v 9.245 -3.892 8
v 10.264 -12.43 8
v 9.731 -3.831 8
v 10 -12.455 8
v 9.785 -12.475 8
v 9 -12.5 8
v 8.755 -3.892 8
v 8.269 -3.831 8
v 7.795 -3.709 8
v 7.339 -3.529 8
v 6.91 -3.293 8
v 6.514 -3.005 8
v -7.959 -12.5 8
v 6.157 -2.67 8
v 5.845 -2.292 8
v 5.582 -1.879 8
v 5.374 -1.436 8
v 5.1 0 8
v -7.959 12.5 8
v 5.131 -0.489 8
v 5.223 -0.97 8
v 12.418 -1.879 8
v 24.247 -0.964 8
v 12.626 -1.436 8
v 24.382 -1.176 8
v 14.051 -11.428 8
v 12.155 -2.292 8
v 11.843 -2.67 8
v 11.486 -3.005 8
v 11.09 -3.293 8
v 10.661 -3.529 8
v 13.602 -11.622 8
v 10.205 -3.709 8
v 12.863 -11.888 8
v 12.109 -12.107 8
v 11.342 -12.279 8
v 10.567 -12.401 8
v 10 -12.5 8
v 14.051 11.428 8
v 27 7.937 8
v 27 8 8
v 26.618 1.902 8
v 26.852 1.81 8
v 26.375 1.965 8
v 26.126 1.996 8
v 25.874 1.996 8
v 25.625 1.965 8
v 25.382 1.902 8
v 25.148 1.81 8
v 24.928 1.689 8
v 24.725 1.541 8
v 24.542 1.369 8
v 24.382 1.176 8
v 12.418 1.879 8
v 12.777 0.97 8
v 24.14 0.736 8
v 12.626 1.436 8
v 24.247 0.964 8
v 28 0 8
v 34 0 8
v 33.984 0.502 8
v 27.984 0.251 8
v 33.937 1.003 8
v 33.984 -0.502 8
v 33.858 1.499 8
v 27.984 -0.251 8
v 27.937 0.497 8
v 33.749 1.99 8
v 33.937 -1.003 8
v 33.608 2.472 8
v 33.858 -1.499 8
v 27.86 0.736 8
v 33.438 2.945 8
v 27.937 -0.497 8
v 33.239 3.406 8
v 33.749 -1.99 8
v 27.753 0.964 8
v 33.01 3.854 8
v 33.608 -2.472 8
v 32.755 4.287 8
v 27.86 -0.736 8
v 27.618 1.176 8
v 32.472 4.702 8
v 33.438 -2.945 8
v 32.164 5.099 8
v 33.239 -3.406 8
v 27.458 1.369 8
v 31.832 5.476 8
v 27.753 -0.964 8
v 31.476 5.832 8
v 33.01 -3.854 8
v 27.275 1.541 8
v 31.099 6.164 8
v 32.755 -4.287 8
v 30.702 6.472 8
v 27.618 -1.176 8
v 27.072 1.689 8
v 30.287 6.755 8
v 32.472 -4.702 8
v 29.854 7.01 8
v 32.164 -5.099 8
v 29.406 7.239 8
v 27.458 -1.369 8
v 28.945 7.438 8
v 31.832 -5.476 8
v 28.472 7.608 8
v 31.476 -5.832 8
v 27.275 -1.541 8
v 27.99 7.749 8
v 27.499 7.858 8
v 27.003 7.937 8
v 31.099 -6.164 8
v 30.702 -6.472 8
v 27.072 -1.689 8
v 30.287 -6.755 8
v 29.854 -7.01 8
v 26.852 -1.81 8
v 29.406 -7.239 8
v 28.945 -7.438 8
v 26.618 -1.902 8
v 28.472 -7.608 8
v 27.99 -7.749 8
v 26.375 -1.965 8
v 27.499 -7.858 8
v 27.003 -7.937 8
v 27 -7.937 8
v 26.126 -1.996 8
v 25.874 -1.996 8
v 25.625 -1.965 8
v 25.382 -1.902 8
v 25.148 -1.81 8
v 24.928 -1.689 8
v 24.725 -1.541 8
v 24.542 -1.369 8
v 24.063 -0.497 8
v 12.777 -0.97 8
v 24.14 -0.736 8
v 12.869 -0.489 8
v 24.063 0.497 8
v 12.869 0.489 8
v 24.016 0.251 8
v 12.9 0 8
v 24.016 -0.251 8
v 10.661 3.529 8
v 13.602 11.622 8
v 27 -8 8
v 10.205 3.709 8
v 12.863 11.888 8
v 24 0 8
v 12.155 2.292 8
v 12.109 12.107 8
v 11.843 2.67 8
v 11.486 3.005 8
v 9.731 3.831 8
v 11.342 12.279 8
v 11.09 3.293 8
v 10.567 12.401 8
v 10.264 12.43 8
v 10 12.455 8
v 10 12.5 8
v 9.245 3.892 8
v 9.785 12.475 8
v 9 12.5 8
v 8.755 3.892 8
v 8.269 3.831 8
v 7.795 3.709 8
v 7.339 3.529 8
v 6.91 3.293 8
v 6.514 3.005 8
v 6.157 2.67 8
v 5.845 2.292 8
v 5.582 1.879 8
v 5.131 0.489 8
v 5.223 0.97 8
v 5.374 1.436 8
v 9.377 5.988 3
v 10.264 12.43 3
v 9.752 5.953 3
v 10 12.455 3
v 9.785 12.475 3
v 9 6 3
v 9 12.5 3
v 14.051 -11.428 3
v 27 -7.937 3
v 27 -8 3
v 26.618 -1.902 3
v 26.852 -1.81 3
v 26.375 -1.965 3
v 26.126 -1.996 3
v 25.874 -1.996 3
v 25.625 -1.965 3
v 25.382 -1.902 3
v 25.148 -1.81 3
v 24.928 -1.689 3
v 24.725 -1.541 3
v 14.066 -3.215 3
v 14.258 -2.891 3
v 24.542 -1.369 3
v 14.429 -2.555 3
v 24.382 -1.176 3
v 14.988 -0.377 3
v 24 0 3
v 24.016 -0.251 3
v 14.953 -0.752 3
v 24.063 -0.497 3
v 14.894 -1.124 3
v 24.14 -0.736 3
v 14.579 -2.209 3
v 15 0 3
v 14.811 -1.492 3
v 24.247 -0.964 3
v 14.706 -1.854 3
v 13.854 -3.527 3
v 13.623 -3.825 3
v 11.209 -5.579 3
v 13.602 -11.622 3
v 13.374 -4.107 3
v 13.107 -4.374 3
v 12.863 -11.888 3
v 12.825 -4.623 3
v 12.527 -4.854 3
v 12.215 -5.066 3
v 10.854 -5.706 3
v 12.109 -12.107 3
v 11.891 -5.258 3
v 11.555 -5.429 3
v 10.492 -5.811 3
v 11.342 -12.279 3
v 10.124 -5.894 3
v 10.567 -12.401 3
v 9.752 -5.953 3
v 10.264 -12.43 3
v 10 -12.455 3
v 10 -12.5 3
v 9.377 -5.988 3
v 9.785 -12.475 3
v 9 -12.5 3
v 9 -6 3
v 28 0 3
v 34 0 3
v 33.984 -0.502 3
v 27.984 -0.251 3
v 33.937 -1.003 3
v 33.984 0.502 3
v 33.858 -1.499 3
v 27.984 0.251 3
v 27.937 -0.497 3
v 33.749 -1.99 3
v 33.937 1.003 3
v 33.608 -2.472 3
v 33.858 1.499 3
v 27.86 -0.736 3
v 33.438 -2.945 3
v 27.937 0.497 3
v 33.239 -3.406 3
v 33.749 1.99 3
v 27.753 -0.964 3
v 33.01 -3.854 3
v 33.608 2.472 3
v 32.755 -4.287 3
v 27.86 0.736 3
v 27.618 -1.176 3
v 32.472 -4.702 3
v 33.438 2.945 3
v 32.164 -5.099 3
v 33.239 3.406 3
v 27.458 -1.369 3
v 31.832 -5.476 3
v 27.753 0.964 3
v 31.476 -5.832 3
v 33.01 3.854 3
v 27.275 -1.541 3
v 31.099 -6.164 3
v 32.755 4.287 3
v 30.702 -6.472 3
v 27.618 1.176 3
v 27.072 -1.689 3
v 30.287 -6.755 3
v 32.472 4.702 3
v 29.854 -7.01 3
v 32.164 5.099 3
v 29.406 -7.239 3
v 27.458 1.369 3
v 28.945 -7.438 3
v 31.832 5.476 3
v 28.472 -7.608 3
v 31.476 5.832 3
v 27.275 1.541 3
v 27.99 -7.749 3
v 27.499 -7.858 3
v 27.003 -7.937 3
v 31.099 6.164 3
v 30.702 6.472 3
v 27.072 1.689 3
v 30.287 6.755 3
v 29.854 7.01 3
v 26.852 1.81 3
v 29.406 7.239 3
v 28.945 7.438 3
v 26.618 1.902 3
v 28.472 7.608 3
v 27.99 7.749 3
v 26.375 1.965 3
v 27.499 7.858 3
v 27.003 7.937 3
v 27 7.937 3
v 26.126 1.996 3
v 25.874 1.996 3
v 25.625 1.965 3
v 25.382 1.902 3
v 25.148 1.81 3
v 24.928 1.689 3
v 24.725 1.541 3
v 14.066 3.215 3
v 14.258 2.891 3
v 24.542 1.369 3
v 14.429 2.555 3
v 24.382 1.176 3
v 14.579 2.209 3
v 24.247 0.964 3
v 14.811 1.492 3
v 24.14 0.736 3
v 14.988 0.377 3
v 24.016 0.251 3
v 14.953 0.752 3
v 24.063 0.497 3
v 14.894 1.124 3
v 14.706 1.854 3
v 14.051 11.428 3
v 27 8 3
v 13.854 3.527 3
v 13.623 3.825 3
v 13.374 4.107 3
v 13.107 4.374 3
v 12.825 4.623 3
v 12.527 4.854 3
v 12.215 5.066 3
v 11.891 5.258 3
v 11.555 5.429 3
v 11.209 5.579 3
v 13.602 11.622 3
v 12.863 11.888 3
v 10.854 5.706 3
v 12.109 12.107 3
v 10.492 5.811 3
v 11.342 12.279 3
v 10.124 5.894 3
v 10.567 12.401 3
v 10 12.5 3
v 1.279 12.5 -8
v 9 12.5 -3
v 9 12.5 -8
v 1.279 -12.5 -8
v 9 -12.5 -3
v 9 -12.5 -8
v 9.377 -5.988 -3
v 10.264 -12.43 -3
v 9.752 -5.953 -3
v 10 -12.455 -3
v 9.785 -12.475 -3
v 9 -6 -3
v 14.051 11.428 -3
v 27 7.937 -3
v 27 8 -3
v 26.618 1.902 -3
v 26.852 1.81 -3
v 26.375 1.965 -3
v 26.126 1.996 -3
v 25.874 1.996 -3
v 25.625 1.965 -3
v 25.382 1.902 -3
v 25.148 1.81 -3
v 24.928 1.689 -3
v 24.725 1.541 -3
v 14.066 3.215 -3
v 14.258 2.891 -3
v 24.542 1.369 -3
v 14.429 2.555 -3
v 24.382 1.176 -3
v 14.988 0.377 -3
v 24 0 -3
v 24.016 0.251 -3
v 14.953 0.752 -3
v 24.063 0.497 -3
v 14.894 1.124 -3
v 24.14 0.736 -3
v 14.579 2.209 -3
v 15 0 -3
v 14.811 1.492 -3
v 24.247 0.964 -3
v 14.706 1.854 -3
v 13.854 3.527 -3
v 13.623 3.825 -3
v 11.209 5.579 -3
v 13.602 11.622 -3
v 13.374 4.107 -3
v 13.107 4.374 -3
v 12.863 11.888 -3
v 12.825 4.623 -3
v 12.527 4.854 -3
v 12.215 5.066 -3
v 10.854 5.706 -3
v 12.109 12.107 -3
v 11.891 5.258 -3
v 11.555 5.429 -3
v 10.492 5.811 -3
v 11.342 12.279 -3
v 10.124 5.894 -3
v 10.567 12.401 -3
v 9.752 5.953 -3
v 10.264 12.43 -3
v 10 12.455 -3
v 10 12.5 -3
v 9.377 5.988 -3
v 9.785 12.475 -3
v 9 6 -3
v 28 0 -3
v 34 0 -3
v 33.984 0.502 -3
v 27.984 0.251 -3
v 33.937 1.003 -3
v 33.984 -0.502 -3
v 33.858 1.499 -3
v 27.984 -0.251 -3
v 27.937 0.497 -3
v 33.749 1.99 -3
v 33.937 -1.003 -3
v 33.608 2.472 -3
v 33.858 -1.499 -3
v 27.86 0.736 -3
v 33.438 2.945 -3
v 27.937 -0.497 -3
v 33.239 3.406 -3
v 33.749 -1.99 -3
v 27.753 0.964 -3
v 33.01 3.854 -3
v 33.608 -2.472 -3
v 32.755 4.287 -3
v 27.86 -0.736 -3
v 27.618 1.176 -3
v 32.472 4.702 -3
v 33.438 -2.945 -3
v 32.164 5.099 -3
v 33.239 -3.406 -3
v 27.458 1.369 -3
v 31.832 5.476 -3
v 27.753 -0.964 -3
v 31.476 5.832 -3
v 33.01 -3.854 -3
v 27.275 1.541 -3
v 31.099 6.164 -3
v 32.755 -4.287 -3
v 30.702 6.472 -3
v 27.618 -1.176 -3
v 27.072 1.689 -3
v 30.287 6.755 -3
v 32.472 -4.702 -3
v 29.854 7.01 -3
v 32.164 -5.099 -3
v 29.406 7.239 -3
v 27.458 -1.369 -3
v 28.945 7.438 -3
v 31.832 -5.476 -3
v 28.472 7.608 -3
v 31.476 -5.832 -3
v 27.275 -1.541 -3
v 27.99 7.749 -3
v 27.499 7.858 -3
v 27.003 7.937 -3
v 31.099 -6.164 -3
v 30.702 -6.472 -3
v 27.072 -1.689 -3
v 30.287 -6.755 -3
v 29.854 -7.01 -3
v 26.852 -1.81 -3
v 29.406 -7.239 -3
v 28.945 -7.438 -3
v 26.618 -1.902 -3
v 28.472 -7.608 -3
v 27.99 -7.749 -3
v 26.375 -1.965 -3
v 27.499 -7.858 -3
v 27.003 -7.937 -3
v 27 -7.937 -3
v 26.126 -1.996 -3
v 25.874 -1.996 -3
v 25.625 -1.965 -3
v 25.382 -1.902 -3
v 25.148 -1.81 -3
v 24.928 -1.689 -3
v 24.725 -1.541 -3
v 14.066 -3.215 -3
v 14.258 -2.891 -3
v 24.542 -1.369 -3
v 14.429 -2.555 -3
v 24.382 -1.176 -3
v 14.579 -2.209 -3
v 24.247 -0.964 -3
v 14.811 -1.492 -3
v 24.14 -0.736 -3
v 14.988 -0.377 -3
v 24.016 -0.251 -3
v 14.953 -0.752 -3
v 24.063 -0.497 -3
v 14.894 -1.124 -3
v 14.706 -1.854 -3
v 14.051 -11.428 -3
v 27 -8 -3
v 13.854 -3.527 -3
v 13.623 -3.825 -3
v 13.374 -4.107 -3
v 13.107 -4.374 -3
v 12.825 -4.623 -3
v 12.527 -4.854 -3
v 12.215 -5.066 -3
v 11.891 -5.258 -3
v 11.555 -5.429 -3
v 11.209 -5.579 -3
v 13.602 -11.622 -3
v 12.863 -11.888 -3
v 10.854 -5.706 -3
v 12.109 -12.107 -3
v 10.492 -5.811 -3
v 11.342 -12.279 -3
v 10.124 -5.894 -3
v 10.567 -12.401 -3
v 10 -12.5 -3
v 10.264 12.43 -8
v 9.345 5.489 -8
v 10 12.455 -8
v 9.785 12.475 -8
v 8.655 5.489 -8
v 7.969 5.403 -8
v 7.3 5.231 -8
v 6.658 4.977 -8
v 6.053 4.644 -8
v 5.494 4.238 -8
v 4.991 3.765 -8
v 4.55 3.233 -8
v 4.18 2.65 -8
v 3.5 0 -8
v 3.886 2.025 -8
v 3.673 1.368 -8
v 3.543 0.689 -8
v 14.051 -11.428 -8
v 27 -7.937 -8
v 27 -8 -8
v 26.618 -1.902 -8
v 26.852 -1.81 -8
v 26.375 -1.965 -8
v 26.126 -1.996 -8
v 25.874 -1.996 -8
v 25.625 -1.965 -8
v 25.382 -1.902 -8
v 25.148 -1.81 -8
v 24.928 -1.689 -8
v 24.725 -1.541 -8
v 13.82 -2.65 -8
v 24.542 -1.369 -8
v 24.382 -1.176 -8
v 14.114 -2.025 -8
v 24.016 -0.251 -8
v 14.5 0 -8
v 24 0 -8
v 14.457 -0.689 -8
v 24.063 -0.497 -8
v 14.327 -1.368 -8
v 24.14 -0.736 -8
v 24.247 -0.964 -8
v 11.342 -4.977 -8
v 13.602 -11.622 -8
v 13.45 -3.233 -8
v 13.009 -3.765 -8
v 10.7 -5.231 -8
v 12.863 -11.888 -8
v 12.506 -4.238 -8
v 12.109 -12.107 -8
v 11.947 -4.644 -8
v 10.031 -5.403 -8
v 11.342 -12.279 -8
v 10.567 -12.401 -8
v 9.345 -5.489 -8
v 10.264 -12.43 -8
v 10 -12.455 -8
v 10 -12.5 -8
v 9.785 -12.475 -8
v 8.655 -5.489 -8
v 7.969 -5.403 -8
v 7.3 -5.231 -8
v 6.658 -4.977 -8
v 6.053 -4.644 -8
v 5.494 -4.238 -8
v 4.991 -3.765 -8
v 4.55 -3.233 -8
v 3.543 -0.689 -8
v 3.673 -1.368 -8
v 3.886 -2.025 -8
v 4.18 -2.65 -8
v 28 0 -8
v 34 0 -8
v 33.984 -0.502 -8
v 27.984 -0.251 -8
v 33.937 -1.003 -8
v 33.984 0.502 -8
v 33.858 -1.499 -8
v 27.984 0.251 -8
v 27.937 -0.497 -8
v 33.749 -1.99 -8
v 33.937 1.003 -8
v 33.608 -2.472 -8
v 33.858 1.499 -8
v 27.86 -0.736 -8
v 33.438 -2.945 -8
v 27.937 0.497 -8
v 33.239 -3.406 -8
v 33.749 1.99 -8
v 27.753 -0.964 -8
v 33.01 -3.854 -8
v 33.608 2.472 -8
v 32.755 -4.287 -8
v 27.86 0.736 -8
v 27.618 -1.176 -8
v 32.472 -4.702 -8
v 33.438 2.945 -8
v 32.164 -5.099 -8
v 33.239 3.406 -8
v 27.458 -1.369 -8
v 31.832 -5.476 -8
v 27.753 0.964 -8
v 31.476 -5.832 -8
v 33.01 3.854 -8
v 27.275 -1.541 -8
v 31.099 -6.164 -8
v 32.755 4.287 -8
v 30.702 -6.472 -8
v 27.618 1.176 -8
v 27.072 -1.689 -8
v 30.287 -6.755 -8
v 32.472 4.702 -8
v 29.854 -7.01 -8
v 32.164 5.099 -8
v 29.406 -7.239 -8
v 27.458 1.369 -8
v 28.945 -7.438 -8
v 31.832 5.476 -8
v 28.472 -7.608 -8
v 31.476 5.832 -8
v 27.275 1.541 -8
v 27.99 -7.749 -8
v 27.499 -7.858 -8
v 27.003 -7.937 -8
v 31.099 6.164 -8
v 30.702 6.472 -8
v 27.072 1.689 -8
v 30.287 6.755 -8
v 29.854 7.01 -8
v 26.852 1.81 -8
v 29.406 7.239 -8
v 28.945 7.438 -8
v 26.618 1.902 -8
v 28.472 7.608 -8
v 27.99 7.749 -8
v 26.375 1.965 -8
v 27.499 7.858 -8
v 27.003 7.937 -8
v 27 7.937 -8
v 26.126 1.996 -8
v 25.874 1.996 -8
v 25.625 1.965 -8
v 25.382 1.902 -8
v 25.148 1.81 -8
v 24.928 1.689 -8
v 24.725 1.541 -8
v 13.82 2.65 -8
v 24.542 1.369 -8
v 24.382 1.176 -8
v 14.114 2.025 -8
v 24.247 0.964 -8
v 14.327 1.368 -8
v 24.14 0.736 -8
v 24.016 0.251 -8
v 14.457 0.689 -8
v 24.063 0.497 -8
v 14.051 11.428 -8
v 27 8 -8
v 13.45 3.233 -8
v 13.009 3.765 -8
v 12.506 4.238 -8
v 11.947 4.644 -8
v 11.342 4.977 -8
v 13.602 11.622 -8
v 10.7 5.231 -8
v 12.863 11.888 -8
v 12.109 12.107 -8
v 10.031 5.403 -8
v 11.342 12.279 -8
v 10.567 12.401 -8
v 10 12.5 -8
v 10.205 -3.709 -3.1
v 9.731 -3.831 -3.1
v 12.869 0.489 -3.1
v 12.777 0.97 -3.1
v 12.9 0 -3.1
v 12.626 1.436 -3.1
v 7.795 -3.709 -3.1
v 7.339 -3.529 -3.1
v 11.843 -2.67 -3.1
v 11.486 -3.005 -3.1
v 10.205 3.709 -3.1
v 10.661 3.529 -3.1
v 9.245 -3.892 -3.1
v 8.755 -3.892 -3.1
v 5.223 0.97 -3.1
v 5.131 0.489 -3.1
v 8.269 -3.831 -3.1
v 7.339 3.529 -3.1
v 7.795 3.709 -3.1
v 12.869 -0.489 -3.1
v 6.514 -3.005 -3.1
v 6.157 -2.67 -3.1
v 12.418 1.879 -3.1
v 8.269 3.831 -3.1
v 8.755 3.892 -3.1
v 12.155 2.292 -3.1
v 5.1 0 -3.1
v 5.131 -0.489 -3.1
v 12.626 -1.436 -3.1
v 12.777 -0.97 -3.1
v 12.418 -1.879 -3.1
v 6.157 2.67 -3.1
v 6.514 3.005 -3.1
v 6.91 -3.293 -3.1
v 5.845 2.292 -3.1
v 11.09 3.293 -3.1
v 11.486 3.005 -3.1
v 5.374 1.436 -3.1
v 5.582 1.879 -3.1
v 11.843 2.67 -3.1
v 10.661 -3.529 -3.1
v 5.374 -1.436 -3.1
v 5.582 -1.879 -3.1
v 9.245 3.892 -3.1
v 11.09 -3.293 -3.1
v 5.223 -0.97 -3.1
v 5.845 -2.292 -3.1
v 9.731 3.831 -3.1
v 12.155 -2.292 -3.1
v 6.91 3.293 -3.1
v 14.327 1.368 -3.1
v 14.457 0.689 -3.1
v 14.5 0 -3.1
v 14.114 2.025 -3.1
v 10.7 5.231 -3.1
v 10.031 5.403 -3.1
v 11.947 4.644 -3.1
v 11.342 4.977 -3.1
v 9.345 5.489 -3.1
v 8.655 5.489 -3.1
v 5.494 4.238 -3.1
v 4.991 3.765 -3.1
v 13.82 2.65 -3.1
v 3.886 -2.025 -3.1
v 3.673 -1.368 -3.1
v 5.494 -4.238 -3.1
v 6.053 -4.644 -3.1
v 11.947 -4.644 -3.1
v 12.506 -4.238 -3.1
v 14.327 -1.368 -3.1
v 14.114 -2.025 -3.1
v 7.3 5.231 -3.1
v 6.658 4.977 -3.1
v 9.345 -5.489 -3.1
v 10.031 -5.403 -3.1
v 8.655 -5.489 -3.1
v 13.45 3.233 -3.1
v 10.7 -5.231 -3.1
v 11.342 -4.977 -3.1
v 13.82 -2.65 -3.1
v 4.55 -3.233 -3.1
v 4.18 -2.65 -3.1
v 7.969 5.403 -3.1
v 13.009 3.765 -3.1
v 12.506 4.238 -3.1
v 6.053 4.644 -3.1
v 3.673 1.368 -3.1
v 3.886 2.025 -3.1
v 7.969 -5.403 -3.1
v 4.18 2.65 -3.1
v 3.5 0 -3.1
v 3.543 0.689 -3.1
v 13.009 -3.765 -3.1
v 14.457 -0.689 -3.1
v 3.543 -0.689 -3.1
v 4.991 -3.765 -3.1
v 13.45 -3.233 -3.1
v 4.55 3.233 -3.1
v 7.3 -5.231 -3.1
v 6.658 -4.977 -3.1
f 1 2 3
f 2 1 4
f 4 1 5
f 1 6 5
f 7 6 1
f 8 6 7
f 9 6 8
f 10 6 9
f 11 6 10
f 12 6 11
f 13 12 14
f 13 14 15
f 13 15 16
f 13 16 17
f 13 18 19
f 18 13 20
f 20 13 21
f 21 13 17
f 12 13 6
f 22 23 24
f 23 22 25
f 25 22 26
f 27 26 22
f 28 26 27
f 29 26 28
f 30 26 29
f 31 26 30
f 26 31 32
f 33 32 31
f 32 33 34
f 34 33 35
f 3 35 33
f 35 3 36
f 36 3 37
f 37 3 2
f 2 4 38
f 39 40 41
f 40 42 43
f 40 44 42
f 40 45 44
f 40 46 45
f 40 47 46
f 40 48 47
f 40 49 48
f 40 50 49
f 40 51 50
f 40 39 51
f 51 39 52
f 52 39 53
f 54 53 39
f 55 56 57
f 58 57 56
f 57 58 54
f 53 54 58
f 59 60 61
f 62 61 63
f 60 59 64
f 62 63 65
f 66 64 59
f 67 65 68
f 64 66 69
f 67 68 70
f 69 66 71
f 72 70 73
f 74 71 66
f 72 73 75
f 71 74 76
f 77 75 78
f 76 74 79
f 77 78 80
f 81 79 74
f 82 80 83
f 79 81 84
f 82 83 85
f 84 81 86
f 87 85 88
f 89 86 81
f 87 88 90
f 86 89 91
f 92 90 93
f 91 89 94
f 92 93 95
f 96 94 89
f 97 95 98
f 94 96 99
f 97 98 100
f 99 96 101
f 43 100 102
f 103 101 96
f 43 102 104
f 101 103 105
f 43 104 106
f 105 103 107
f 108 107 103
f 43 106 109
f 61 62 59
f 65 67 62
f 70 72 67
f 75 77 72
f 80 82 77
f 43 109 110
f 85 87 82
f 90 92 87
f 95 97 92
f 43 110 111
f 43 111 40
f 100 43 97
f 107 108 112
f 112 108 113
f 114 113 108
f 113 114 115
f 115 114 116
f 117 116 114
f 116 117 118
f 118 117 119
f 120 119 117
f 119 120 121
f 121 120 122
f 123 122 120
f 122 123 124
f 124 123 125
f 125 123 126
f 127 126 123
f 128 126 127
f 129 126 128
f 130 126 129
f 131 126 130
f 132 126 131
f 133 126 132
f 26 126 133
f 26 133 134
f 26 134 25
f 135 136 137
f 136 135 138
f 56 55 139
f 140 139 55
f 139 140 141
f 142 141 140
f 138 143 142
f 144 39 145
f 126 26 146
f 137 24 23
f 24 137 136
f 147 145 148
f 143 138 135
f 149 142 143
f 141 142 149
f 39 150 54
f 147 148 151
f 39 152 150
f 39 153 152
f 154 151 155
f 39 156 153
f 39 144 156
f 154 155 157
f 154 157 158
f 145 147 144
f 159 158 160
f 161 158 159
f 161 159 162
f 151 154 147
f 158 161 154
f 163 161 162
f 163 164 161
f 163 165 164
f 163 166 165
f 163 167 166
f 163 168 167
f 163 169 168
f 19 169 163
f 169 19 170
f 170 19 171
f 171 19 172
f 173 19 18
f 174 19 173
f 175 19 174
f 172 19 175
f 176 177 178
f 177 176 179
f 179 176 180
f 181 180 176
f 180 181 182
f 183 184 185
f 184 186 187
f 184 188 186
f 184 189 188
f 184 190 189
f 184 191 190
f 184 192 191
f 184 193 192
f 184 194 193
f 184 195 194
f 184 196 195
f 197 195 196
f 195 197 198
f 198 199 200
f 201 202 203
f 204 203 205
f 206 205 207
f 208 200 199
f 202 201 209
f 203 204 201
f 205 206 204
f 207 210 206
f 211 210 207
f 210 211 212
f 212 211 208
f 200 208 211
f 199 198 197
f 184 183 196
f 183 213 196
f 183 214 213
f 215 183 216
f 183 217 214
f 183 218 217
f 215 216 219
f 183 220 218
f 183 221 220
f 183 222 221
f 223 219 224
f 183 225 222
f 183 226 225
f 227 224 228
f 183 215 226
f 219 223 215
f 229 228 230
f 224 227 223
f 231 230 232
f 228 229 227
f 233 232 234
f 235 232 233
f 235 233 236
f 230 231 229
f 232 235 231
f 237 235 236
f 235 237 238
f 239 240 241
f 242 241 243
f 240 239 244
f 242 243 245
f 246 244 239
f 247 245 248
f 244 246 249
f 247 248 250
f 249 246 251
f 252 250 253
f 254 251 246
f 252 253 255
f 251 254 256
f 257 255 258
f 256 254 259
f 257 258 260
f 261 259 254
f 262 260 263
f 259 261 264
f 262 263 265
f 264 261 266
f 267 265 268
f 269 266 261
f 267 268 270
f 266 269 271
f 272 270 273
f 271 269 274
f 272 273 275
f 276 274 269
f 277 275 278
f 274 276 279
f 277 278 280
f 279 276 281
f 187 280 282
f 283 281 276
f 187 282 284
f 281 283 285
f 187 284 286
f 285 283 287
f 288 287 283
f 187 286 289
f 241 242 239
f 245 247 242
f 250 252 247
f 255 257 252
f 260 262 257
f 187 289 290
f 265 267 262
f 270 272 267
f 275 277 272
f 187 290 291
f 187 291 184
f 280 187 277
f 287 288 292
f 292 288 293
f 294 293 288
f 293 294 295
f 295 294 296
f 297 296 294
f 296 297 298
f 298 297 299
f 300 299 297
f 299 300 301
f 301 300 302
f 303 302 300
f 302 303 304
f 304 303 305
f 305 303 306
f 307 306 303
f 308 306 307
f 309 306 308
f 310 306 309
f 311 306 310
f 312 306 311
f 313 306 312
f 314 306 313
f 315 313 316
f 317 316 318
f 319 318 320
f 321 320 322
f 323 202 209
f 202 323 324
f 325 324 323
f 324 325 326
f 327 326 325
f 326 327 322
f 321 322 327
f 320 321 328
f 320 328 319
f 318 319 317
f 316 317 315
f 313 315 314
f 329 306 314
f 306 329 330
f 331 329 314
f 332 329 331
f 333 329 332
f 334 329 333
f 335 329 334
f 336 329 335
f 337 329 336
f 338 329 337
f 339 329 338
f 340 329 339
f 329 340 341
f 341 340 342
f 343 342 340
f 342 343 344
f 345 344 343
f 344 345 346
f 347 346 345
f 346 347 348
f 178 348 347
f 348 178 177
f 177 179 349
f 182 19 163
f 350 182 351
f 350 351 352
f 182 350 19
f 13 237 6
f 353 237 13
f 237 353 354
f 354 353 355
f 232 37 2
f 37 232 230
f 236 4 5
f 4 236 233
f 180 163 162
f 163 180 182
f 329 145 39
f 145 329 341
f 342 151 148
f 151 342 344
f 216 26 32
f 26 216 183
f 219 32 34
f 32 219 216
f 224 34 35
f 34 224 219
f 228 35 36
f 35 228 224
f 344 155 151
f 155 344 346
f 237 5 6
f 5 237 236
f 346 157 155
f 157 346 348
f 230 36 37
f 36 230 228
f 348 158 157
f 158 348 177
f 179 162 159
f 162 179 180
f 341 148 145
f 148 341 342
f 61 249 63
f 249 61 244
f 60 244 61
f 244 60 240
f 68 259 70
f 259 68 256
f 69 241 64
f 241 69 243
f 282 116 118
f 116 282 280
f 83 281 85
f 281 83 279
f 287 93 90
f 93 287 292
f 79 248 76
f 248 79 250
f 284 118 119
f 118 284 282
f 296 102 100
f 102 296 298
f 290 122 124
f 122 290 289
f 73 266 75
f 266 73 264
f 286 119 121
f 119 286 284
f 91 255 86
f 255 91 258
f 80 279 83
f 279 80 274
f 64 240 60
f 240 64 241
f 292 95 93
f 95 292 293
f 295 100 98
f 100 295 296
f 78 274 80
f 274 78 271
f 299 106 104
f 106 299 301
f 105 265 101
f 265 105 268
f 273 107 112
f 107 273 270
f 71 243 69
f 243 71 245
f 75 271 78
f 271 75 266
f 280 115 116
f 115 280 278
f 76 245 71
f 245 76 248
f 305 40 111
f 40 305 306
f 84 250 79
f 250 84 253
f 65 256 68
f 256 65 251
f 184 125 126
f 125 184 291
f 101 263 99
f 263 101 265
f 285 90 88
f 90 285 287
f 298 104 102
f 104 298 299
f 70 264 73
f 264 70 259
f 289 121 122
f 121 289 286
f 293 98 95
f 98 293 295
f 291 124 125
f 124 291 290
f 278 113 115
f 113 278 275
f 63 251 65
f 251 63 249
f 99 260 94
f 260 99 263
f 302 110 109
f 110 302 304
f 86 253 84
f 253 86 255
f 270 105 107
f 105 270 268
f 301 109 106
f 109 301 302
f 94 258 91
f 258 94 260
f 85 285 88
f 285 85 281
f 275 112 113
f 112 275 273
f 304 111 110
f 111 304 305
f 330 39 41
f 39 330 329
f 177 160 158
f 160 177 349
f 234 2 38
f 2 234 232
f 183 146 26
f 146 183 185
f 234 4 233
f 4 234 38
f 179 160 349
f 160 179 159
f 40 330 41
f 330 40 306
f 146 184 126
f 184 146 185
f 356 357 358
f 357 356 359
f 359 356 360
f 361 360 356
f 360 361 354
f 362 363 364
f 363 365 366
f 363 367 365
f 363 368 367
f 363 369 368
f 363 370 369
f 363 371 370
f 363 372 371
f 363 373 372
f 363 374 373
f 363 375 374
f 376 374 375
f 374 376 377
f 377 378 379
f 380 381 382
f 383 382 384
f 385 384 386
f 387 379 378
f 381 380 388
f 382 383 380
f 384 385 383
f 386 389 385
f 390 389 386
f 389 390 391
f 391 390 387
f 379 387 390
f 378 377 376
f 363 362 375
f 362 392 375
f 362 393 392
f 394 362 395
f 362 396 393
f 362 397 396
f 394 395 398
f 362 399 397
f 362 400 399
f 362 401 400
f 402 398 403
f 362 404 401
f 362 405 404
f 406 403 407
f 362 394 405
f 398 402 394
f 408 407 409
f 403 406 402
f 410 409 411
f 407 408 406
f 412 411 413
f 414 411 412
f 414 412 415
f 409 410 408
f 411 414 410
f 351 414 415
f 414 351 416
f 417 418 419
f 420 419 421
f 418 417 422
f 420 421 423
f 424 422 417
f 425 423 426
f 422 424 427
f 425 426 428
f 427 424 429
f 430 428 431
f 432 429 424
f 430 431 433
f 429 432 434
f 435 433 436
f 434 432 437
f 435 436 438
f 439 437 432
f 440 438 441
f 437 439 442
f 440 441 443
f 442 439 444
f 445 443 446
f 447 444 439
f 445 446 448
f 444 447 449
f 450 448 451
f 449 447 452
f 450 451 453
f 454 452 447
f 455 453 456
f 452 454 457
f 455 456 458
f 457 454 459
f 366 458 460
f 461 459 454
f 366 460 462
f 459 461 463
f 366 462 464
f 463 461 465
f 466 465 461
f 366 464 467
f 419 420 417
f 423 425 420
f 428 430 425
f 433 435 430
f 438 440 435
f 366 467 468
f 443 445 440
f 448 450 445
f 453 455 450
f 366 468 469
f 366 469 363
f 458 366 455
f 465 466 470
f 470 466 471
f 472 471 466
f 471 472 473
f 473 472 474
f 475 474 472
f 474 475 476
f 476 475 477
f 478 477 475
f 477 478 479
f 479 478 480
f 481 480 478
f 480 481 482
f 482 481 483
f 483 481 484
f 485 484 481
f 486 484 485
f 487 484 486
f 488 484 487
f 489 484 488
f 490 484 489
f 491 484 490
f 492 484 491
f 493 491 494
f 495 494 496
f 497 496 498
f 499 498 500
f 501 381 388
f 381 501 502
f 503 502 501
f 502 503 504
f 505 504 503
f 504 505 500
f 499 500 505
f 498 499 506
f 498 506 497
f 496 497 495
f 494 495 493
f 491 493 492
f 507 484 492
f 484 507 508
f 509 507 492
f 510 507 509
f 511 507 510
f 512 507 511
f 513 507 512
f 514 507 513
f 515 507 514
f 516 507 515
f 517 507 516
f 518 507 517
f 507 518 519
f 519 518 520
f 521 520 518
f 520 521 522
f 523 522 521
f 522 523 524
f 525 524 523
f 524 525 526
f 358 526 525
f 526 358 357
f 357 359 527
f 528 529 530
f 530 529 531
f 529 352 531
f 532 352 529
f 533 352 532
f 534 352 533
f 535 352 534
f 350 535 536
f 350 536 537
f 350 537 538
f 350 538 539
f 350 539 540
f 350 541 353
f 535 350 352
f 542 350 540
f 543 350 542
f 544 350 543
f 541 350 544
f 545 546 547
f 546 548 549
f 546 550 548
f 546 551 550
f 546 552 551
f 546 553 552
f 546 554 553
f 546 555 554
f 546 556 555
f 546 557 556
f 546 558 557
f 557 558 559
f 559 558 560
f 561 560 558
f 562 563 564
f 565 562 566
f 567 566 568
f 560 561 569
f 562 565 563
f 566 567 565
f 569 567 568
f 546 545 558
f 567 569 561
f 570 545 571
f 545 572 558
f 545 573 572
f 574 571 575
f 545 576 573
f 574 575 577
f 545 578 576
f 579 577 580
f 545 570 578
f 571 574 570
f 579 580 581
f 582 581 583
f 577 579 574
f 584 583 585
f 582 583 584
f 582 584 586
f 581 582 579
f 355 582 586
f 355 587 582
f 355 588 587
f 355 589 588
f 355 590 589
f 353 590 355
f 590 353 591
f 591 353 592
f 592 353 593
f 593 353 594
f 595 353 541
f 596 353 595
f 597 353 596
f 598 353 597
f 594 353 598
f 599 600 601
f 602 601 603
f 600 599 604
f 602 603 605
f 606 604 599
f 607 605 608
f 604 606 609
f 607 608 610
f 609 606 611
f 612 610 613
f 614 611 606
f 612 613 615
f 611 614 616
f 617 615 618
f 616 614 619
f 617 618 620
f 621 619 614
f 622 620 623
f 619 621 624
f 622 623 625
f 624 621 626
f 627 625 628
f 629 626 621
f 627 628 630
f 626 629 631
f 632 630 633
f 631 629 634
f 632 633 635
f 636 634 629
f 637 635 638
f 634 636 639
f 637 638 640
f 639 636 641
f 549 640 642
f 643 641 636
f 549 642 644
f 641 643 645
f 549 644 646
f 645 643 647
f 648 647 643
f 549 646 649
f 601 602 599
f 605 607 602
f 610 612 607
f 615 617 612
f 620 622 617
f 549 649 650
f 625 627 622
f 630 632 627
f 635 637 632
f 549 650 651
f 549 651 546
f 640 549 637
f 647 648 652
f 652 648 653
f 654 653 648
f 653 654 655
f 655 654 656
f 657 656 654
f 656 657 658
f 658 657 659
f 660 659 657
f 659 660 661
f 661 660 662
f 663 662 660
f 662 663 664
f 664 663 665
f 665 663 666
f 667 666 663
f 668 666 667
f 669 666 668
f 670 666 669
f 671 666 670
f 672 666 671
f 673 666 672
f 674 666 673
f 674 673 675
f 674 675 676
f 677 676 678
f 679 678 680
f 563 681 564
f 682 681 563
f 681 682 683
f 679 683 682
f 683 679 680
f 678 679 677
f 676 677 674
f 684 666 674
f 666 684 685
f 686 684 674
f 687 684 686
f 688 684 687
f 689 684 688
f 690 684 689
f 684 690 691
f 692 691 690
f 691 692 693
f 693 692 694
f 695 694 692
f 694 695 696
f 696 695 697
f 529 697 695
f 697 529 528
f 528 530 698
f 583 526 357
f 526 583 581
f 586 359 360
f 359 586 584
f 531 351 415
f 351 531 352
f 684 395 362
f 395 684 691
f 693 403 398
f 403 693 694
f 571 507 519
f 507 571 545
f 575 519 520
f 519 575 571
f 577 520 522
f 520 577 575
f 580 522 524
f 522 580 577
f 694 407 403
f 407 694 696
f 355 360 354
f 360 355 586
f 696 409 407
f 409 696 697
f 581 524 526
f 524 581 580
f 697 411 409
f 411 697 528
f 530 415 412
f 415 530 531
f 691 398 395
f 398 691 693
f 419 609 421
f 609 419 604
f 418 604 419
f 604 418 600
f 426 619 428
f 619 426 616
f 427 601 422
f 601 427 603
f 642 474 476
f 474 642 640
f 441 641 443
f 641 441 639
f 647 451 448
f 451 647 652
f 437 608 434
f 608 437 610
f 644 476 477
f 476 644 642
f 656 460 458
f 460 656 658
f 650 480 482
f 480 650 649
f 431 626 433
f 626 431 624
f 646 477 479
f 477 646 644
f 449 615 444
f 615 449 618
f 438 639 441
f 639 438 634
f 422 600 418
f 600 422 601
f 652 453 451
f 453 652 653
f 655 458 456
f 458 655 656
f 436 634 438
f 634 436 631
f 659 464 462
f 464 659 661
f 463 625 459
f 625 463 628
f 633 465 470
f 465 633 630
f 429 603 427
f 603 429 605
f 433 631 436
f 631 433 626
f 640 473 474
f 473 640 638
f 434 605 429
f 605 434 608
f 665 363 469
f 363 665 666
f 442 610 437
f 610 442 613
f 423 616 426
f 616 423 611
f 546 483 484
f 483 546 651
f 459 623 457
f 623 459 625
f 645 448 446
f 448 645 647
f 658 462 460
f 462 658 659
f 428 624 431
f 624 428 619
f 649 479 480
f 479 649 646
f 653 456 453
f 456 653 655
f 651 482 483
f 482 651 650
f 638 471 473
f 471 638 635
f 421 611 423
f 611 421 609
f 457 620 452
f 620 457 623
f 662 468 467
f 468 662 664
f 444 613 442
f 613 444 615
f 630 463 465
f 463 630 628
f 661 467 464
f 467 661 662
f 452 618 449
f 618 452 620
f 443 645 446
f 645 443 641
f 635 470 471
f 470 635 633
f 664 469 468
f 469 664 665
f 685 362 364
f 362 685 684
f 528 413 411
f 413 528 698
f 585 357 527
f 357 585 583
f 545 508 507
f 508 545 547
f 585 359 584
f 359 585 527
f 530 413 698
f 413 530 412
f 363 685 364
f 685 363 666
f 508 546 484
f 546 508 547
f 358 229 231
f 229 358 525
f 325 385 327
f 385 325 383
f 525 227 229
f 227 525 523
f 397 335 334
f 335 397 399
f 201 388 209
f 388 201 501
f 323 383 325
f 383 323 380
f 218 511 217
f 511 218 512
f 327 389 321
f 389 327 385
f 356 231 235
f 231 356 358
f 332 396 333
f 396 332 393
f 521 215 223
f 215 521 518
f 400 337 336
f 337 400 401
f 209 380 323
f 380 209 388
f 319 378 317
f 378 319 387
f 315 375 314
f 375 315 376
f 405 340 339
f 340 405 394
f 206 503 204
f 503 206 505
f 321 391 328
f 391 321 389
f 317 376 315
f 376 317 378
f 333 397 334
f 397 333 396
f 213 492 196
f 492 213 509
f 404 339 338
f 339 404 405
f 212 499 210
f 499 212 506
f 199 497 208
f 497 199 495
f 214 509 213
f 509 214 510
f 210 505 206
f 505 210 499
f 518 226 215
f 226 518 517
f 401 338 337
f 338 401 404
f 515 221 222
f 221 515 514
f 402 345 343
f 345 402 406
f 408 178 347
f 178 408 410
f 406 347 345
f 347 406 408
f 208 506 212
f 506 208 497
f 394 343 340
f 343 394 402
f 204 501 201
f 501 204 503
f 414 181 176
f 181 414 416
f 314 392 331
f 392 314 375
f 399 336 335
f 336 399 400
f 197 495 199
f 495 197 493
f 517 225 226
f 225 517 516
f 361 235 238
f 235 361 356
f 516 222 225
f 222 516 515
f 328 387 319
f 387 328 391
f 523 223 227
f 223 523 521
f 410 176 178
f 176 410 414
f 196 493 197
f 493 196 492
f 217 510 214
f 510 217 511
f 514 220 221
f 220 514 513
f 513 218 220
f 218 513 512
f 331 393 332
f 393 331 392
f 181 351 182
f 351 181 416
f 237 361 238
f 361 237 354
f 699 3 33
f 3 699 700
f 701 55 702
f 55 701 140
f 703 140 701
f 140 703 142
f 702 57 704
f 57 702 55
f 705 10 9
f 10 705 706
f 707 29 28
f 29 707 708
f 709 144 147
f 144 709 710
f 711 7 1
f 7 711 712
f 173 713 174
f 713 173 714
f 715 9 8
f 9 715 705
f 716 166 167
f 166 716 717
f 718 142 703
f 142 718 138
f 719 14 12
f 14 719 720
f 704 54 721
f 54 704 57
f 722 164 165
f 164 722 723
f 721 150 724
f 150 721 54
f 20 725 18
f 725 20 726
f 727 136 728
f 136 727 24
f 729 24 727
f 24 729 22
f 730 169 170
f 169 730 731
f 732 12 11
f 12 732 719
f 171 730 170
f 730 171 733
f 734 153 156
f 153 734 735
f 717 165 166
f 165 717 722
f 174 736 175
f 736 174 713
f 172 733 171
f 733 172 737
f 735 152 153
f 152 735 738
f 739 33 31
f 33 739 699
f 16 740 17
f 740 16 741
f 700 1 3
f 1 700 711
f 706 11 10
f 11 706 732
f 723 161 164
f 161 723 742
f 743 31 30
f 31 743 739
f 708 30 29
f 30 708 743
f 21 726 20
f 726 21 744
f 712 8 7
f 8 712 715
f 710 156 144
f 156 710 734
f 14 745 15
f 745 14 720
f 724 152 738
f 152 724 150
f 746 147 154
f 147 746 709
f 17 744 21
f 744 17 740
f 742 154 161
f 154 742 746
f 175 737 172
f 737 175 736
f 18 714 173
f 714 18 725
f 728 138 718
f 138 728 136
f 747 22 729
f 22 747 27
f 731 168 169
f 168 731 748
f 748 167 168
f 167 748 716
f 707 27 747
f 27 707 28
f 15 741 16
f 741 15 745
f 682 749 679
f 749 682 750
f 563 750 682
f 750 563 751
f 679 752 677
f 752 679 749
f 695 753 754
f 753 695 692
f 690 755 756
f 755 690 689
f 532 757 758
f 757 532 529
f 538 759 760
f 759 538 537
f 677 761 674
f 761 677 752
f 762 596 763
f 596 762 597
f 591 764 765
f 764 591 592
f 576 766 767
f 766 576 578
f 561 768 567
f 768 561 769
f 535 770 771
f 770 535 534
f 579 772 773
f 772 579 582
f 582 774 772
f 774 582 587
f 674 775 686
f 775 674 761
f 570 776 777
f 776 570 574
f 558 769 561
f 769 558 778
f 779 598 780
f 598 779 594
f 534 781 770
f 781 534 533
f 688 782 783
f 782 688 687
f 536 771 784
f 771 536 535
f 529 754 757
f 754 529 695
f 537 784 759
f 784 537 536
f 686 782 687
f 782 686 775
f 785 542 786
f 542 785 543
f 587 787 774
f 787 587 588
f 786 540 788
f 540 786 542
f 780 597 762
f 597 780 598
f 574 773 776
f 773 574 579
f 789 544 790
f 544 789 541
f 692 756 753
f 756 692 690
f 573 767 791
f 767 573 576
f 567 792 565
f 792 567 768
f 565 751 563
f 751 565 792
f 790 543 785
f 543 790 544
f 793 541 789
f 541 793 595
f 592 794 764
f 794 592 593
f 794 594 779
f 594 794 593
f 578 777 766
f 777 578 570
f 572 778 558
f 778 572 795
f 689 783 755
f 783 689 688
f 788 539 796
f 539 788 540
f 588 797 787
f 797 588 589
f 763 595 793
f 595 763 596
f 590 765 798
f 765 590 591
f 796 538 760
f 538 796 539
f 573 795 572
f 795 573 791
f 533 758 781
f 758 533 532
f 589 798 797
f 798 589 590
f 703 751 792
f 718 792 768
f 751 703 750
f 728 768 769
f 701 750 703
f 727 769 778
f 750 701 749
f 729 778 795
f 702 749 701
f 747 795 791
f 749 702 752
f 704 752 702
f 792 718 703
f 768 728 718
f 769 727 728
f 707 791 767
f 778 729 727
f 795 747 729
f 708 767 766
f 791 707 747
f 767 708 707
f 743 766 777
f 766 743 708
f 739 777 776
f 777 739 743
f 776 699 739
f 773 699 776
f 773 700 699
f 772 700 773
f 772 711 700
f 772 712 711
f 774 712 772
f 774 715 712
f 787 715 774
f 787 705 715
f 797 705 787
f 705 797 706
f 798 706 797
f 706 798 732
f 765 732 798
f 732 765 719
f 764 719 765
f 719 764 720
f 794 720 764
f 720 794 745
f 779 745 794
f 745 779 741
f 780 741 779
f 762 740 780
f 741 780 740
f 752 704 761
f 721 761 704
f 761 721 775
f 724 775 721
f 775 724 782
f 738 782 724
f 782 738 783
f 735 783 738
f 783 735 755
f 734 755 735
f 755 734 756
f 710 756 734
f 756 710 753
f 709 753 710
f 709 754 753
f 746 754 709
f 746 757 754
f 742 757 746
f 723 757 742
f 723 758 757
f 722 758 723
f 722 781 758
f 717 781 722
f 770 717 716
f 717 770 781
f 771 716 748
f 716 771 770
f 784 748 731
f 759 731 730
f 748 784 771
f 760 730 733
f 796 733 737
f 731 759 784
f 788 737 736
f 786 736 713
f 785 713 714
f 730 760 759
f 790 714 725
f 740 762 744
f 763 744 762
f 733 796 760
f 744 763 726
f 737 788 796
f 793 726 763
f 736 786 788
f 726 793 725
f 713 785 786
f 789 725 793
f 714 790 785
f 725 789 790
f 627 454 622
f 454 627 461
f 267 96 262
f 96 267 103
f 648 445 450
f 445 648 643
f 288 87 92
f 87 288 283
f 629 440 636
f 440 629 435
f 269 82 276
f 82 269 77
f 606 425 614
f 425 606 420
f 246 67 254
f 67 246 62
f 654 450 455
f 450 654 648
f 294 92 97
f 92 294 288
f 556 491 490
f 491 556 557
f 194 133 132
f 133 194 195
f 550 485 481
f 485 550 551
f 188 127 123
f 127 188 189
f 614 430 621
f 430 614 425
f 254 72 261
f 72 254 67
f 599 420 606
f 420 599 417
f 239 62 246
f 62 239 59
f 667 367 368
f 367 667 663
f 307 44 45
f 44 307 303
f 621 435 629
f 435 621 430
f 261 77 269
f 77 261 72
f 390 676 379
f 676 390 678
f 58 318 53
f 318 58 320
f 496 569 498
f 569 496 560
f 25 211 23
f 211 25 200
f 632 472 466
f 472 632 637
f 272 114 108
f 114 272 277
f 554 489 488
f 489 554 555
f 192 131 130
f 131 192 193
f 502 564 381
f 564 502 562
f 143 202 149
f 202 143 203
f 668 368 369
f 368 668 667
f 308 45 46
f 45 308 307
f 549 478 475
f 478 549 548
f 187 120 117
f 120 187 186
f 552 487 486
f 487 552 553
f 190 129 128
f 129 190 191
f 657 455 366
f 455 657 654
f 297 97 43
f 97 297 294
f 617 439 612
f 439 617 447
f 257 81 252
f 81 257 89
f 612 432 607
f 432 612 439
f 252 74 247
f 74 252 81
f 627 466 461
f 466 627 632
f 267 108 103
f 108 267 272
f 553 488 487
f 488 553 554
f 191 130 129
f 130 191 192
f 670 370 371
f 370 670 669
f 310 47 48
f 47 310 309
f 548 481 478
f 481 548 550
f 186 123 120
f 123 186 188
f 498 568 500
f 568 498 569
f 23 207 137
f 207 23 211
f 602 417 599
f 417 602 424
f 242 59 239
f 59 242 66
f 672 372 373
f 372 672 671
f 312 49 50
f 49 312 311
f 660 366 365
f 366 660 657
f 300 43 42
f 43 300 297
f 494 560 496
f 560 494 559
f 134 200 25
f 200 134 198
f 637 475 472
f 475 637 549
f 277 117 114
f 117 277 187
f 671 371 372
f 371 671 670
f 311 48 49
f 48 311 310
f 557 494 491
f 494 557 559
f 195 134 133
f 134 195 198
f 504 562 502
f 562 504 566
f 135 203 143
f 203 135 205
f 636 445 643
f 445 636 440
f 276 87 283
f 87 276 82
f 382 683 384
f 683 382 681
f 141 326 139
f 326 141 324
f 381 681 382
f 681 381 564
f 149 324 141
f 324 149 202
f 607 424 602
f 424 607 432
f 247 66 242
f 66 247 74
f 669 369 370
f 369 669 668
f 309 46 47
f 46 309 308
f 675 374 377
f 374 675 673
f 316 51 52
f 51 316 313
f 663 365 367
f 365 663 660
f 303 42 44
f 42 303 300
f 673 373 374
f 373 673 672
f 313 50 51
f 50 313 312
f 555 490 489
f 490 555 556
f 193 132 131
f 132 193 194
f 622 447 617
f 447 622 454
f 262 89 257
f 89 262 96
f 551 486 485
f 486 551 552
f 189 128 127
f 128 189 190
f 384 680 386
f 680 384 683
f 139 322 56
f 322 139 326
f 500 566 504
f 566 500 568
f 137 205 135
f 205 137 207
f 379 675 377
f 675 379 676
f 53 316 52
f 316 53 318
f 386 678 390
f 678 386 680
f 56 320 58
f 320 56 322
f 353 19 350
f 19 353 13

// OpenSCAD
/**
 * Locker for porthole
 *
 * First designed for Frolic.
 */
 
ONE_PLATE_THICKNESS = 5;
ONE_PLATE_WIDTH = 25;
ONE_PLATE_LENGTH_01 = 18;
ONE_PLATE_WIDTH_02 = 16;
BETWEEN_AXIS = 17;
BIG_AXIS_DIAM = 11;
BIG_AXIS_HEAD_THICKNESS = 5;

TOTAL_THICKNESS = 16; // Full bottom part
 
module oneHorizontalPlate () {
   union() {
     translate([0, 0, 0]) {
       cube([ONE_PLATE_LENGTH_01, ONE_PLATE_WIDTH, ONE_PLATE_THICKNESS], center=true);
     }
     translate([(ONE_PLATE_LENGTH_01 / 2), 0 , 0]) {
       cylinder(h=ONE_PLATE_THICKNESS, r=(ONE_PLATE_WIDTH / 2), center=true, $fn=100); 
     }
     translate([(ONE_PLATE_LENGTH_01 / 2) + BETWEEN_AXIS, 0 , 0]) {
       cylinder(h=ONE_PLATE_THICKNESS, r=(ONE_PLATE_WIDTH_02 / 2), center=true, $fn=100); 
     }
     translate([(ONE_PLATE_LENGTH_01 / 2) + 1, 0, -(ONE_PLATE_THICKNESS / 2)]) {
       CubePoints = [
         [0, -(ONE_PLATE_WIDTH / 2), 0],   // 0
         [BETWEEN_AXIS, -(ONE_PLATE_WIDTH_02 / 2), 0],  // 1
         [BETWEEN_AXIS, (ONE_PLATE_WIDTH_02 / 2), 0],  // 2
         [0, (ONE_PLATE_WIDTH / 2), 0],   // 3
         [0, -(ONE_PLATE_WIDTH / 2), ONE_PLATE_THICKNESS],   // 4
         [BETWEEN_AXIS, -(ONE_PLATE_WIDTH_02 / 2), ONE_PLATE_THICKNESS],  // 5
         [BETWEEN_AXIS, (ONE_PLATE_WIDTH_02 / 2), ONE_PLATE_THICKNESS],  // 6
         [0, (ONE_PLATE_WIDTH / 2), ONE_PLATE_THICKNESS]    // 7
       ];
       CubeFaces = [
         [0, 1, 2, 3],  // bottom
         [4, 5, 1, 0],  // front
         [7, 6, 5, 4],  // top
         [5, 6, 2, 1],  // right
         [6, 7, 3, 2],  // back
         [7, 4, 0, 3]   // left
       ]; 
       polyhedron( CubePoints, CubeFaces );
     }
   }
 }
 
 // Execution 
 translate([0, 0, 0 /*TOTAL_THICKNESS / 2*/]) {
   difference() {
     union() {
       translate([0, 0, ((TOTAL_THICKNESS - ONE_PLATE_THICKNESS) / 2)]) {
          oneHorizontalPlate();
       }
       translate([0, 0, -((TOTAL_THICKNESS - ONE_PLATE_THICKNESS) / 2)]) {
          oneHorizontalPlate();
       }
       // Around big axis
       translate([(ONE_PLATE_LENGTH_01 / 2), 0, 0]) {
         cylinder(h=TOTAL_THICKNESS, r=6, center=true, $fn=100);
       }
       // The back
       translate([0, 0, 0]) {
         cube([ONE_PLATE_LENGTH_01, ONE_PLATE_WIDTH, TOTAL_THICKNESS], center=true);
       }
     }
     // Holes
     // 1 - Big one
     translate([(ONE_PLATE_LENGTH_01 / 2), 0, 0]) {
       cylinder(h=40, r=3.9, center=true, $fn=50);
     }
     // 1.1 - Head
     translate([(ONE_PLATE_LENGTH_01 / 2), 0, -10.6 + BIG_AXIS_HEAD_THICKNESS]) {
       cylinder(h=BIG_AXIS_HEAD_THICKNESS, r=BIG_AXIS_DIAM / 2, center=true, $fn=50);
     }
     // 2 - Small one
     translate([(ONE_PLATE_LENGTH_01 / 2) + BETWEEN_AXIS, 0, 0]) {
       cylinder(h=40, r=2, center=true, $fn=50);
     }
     // 3 - Cut the back
     translate([-12.0, 0, 0]) {
       rotate([0, -30, 0]) {
          cube([15, 30, 40], center=true);
       }
     }
     
   }
 }
